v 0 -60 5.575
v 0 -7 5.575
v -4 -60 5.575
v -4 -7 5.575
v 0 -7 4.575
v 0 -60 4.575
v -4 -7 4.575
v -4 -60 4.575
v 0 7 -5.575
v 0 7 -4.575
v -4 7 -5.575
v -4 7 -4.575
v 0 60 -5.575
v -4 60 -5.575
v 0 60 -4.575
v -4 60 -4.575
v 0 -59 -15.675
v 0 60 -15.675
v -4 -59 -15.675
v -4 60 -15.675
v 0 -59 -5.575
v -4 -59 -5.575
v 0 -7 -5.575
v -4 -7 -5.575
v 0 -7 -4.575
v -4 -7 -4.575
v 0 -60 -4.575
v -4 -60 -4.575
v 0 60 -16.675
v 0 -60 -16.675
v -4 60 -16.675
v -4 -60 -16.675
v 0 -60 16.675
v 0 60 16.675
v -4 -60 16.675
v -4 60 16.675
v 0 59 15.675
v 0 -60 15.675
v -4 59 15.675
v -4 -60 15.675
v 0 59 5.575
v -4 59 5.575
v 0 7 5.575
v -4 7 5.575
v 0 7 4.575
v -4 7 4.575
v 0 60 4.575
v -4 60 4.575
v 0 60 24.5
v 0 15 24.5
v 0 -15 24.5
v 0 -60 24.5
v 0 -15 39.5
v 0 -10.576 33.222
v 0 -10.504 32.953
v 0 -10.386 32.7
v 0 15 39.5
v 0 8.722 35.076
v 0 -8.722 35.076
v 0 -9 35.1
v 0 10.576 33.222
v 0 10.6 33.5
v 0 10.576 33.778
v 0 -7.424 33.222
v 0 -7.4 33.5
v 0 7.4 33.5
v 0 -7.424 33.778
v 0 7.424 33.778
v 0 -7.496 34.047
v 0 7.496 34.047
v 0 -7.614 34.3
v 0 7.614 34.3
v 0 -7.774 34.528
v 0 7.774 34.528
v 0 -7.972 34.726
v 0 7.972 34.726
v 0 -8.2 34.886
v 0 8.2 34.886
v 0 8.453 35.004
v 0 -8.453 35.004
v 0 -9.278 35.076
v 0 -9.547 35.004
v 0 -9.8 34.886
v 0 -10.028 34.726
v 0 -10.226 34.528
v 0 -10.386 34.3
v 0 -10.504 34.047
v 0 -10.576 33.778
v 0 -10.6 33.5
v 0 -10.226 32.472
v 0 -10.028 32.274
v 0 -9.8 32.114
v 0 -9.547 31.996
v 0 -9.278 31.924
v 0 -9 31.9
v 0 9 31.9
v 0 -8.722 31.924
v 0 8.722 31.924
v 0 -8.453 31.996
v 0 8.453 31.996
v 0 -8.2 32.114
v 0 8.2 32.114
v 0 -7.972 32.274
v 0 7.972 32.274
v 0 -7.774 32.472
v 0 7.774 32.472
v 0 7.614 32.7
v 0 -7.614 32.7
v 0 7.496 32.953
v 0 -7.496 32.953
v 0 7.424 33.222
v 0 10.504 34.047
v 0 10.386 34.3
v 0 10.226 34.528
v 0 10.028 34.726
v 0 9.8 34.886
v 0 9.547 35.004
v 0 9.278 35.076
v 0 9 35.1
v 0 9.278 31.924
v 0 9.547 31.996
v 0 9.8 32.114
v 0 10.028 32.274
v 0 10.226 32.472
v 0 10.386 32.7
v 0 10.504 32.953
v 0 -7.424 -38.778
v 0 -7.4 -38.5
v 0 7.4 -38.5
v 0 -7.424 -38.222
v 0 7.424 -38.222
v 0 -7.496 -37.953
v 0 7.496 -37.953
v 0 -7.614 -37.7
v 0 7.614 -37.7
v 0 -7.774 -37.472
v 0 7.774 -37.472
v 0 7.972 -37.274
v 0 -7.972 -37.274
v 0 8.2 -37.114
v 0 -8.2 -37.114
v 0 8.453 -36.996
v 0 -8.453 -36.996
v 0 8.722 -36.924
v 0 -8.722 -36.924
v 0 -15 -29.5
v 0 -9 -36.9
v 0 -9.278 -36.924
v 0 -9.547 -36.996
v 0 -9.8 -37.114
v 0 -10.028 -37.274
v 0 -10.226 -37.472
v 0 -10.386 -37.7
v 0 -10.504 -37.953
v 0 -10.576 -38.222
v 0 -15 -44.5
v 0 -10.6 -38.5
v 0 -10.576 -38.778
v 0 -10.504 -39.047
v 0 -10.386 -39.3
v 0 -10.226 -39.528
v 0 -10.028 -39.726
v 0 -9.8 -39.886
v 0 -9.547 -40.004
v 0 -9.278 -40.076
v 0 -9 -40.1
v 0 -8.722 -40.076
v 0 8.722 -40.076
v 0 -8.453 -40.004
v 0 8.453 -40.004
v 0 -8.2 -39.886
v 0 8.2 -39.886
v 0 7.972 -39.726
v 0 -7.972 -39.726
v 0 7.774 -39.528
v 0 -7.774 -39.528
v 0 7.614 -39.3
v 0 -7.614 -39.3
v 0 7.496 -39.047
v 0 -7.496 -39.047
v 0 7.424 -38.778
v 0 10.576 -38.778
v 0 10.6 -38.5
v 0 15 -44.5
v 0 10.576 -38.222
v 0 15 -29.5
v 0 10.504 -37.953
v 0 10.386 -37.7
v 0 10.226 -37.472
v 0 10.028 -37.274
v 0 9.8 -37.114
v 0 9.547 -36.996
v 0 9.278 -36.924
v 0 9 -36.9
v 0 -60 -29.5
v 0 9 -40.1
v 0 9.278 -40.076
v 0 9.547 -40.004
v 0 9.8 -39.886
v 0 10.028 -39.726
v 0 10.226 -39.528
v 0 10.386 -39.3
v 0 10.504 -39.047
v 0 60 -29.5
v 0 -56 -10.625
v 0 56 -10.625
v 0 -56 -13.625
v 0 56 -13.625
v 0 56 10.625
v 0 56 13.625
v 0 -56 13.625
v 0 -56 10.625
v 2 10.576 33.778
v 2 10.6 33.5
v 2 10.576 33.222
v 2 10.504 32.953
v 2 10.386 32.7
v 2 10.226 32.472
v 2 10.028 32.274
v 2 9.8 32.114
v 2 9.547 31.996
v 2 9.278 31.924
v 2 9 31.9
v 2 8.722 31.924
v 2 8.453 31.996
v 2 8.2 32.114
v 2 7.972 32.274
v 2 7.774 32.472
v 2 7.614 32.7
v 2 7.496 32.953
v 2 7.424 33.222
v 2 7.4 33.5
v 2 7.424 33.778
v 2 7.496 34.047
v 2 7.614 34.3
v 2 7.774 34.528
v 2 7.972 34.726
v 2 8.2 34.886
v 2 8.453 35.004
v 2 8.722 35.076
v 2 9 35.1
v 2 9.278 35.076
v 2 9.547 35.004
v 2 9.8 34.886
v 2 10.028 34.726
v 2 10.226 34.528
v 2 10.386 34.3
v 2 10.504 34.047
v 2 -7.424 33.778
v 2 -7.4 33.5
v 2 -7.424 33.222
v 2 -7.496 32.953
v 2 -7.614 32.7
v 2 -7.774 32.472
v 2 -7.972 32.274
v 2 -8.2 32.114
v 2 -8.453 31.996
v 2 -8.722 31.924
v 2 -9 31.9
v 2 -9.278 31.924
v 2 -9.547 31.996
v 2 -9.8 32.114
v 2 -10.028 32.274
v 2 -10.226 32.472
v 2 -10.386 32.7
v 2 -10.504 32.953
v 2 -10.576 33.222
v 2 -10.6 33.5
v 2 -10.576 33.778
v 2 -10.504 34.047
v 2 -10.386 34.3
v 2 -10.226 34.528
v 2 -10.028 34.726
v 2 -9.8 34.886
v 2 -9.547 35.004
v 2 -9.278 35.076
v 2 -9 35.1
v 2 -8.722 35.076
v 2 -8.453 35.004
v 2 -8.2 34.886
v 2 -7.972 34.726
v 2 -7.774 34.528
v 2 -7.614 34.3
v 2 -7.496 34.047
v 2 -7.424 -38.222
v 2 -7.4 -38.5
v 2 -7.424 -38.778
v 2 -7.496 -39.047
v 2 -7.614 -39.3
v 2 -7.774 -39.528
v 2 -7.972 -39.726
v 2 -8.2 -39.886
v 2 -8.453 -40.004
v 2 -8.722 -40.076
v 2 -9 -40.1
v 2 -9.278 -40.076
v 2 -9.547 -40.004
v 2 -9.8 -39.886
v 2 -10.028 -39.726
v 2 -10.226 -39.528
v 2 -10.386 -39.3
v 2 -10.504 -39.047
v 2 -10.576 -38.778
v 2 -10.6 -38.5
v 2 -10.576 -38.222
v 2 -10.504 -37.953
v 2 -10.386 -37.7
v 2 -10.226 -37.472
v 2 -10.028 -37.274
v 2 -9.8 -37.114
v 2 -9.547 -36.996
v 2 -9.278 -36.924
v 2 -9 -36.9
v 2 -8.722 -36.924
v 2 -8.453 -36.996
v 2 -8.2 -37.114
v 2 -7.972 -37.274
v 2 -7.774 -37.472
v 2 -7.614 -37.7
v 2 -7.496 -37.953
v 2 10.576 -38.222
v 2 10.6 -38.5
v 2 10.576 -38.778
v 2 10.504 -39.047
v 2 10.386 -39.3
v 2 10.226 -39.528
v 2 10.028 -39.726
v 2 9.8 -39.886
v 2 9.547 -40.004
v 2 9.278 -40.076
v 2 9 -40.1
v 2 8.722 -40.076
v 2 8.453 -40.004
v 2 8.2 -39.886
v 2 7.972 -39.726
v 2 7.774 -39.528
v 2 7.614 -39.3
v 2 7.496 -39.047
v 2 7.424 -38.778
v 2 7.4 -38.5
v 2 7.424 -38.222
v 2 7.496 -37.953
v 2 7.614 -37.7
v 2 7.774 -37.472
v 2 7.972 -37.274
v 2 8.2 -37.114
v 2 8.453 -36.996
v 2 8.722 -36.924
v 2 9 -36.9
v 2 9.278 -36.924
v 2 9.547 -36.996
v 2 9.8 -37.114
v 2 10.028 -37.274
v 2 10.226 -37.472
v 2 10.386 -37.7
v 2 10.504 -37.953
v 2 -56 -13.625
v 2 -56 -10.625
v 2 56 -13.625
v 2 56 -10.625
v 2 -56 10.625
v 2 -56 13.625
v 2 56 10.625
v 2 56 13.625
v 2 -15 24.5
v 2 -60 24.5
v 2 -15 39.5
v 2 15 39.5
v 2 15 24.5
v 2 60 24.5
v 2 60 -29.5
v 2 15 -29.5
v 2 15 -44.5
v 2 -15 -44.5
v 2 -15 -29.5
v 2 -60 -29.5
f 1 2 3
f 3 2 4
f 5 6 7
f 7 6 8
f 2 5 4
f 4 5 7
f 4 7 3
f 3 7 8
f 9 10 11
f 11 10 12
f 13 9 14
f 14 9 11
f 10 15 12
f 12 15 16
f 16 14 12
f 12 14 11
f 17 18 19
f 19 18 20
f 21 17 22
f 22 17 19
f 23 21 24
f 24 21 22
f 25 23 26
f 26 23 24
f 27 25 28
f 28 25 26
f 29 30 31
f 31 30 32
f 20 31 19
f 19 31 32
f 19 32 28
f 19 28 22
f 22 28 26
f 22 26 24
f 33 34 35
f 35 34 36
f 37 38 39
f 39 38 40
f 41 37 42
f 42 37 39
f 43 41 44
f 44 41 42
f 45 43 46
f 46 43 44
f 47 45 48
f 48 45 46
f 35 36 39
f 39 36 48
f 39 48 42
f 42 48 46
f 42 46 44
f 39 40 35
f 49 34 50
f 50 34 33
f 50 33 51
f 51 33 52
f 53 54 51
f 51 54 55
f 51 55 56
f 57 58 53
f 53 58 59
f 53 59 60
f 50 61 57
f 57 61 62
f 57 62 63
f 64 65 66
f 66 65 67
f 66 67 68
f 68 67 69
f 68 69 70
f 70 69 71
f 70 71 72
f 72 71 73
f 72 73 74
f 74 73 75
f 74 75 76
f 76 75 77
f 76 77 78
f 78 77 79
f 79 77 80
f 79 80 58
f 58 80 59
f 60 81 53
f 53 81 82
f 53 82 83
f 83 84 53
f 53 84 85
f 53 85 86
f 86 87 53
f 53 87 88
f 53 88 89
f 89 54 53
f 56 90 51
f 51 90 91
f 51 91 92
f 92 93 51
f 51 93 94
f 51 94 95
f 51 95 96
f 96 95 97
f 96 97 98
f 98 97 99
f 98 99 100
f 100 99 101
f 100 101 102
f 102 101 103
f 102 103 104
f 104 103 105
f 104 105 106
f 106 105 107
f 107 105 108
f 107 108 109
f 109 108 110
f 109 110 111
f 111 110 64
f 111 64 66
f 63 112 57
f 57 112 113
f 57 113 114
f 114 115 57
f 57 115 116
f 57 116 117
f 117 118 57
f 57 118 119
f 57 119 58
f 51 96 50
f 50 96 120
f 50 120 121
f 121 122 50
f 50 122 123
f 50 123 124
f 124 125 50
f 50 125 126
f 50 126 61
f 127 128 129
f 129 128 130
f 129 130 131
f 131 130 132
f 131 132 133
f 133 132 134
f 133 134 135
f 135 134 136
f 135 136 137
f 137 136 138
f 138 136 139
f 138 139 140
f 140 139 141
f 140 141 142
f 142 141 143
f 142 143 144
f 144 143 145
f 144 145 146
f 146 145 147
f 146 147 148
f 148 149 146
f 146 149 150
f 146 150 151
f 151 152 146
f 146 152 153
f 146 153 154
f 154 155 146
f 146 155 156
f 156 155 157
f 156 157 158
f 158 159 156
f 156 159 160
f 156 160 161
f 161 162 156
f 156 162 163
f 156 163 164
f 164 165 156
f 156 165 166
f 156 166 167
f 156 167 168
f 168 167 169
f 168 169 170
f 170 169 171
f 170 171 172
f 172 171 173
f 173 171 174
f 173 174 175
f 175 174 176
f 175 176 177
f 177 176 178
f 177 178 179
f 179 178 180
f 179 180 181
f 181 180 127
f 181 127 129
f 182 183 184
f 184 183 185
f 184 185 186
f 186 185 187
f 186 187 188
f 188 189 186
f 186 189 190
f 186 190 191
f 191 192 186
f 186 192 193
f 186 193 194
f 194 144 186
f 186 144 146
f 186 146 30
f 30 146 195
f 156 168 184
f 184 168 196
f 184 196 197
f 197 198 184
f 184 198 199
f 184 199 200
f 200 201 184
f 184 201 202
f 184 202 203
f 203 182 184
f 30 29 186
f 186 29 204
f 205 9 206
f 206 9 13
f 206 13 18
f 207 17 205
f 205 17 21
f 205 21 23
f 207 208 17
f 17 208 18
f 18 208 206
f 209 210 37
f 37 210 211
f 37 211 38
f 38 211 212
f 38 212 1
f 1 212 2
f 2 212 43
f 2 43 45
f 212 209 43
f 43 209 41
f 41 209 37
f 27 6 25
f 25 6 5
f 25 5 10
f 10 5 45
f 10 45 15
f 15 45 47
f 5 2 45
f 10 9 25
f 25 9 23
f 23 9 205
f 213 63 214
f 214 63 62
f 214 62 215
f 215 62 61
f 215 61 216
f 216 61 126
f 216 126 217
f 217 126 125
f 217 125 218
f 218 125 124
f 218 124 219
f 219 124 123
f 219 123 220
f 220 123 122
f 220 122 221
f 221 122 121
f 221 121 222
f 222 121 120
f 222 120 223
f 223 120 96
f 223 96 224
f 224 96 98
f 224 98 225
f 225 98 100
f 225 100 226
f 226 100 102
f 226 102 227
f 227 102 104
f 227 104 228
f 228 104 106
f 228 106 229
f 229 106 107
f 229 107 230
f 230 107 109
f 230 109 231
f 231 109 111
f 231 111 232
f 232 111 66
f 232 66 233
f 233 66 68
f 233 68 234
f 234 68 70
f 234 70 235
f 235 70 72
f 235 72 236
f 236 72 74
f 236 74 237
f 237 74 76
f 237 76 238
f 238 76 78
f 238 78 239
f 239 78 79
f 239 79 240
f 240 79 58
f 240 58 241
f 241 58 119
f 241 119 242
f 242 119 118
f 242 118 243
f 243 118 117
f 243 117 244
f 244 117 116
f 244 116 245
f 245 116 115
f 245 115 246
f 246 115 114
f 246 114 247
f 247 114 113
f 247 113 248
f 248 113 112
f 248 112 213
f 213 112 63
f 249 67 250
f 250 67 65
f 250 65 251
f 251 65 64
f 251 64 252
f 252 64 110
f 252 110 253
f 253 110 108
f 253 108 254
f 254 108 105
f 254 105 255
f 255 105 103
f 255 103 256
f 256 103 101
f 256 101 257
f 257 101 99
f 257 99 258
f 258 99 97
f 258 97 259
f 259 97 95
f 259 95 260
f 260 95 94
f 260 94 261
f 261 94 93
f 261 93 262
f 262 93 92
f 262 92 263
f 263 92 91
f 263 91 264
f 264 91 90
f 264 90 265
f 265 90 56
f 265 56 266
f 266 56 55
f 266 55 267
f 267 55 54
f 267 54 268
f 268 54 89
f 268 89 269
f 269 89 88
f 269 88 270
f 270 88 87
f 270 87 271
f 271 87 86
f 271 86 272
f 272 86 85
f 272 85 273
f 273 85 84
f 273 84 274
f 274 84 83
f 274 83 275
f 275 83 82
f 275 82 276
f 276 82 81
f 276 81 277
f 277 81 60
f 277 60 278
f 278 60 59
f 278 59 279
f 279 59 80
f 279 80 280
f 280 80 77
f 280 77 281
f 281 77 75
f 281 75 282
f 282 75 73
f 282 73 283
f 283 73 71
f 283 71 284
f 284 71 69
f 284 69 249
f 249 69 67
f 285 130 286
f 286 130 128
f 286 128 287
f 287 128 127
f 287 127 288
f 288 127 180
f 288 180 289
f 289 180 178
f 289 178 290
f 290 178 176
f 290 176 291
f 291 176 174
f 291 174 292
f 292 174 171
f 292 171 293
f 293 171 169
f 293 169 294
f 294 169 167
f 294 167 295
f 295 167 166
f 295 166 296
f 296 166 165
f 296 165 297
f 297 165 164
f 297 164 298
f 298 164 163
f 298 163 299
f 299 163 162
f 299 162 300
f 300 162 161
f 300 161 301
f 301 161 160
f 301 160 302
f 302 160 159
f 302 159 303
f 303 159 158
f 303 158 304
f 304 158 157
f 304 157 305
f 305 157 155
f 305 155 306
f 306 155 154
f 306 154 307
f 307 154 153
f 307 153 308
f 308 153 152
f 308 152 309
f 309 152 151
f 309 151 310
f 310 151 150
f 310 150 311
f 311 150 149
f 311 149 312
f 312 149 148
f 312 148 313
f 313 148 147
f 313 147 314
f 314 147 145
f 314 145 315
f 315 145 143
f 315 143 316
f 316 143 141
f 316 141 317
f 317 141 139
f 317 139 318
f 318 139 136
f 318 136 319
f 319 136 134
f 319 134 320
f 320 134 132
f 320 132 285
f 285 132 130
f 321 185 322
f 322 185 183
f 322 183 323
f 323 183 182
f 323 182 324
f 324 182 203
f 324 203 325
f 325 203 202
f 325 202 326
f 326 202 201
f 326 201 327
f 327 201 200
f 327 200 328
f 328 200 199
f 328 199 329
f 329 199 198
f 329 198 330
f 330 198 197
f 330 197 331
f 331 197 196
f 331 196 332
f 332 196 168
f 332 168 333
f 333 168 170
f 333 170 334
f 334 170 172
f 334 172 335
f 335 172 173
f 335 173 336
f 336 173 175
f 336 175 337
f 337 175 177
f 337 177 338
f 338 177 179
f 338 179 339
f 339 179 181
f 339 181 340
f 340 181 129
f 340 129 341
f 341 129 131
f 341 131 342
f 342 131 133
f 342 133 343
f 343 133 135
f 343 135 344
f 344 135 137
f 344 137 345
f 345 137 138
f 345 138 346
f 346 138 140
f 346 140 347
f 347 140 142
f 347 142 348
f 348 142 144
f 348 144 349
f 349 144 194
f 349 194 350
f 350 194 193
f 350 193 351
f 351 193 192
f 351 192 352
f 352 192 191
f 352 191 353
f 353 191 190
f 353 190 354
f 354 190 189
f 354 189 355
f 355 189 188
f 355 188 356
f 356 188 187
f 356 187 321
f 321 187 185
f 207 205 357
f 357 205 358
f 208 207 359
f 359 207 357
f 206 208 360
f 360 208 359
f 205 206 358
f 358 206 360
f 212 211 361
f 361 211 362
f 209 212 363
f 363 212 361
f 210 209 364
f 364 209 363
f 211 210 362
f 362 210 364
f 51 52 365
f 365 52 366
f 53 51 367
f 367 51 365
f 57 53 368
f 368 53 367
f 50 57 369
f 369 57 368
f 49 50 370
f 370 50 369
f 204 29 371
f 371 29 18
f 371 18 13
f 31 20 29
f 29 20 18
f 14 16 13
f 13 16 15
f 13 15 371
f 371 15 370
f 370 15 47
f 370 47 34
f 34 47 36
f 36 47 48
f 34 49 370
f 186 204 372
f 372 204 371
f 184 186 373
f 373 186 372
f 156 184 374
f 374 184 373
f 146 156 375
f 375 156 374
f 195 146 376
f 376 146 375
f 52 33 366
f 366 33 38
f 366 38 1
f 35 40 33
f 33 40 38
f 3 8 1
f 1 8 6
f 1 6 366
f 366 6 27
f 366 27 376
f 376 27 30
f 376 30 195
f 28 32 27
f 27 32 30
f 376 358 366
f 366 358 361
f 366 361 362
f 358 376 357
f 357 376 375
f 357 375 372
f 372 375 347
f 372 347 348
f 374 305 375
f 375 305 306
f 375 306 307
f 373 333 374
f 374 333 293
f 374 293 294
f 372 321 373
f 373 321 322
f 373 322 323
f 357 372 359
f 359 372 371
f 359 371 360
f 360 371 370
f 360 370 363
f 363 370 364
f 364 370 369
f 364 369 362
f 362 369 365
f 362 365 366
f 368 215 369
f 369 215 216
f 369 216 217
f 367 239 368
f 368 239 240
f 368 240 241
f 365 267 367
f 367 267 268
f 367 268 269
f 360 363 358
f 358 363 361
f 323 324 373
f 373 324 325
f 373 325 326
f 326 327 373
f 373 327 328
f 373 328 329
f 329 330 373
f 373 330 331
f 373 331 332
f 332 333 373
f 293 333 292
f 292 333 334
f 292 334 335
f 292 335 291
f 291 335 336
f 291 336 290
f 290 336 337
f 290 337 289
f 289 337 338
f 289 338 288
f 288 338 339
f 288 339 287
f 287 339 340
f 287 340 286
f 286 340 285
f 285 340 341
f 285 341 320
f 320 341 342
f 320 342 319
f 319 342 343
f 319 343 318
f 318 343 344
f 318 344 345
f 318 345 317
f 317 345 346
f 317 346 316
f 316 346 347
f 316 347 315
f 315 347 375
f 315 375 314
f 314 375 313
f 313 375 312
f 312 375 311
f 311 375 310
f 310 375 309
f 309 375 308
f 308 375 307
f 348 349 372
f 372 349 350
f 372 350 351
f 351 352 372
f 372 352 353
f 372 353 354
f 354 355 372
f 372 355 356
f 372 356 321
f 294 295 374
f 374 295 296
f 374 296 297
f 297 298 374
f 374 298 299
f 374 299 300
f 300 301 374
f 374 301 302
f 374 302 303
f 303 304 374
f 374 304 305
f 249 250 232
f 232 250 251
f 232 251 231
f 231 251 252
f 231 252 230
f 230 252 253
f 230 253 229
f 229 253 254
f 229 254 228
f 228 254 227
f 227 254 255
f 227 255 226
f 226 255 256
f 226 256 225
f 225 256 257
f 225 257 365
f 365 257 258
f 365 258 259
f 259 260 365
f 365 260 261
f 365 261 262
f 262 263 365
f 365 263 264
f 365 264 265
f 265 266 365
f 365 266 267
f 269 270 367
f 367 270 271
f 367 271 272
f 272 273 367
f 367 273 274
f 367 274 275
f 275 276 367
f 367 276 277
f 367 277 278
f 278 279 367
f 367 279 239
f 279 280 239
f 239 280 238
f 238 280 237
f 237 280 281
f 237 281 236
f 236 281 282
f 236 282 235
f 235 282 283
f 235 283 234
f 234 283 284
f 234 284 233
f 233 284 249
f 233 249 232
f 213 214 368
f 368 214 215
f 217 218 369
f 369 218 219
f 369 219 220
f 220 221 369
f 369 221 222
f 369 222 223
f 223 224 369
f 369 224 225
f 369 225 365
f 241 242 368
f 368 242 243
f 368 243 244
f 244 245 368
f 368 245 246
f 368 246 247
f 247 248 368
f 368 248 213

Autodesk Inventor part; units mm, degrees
ref_plane "YZ Plane" through (0, 0, 0) normal (1, 0, 0) x (0, 1, 0)
ref_plane "XZ Plane" through (0, 0, 0) normal (0, 1, 0) x (-1, 0, 0)
ref_plane "XY Plane" through (0, 0, 0) normal (0, 0, 1) x (1, 0, 0)
sketch "スケッチ1" plane through (0, 0, 0) normal (1, 0, 0) x (0, 1, 0)
  line L0 (60, -16.042) -> (-60, -16.042)
  line L1 (-60, -16.042) -> (-60, 16.042)
  line L2 (-60, 16.042) -> (60, 16.042)
  line L3 (60, 16.042) -> (60, -16.042)
  line L4 (60, -16.042) -> (-60, 16.042) construction
  line L5 (-60, -16.042) -> (60, 16.042) construction
  line L6 (-56, 13.625) -> (56, 13.625)
  line L7 (56, 13.625) -> (56, 10.625)
  line L8 (56, 10.625) -> (-56, 10.625)
  line L9 (-56, 10.625) -> (-56, 13.625)
  line L10 (-56, -10.625) -> (56, -10.625)
  line L11 (56, -10.625) -> (56, -13.625)
  line L12 (56, -13.625) -> (-56, -13.625)
  line L13 (-56, -13.625) -> (-56, -10.625)
  line L14 (60, -16.042) -> (-60, -16.042)
  line L15 (-60, -16.042) -> (-60, -29.5)
  line L16 (-60, -29.5) -> (60, -29.5)
  line L17 (60, -29.5) -> (60, -16.042)
  line L18 (-60, 16.042) -> (60, 16.042)
  line L19 (60, 16.042) -> (60, 24.5)
  line L20 (60, 24.5) -> (-60, 24.5)
  line L21 (-60, 24.5) -> (-60, 16.042)
  line L22 (15, 24.5) -> (-15, 24.5)
  line L23 (-15, 24.5) -> (-15, 39.5)
  line L24 (-15, 39.5) -> (15, 39.5)
  line L25 (15, 39.5) -> (15, 24.5)
  line L26 (20, -29.5) -> (10, -29.5)
  line L27 (-10, -29.5) -> (-20, -29.5)
  circle A0 centre (9, 33.5) radius 1.6
  circle A1 centre (-9, 33.5) radius 1.6
  line L28 (60, 0) -> (-60, 0)
  line L29 (15, -29.5) -> (-15, -29.5)
  line L30 (-15, -29.5) -> (-15, -44.5)
  line L31 (-15, -44.5) -> (15, -44.5)
  line L32 (15, -44.5) -> (15, -29.5)
  circle A2 centre (-9, -38.5) radius 1.6
  circle A3 centre (9, -38.5) radius 1.6
  point P0 (0, 0)
  point P1 (0, 0)
  point P2 (56, 12.125)
  point P3 (56, -12.125)
  point P4 (0, 0)
  point P5 (-15, 24.5)
  point P6 (-15, -29.5)
  dimension "d1" = 120
  dimension "d3" = 12.125
  dimension "d6" = 3
  dimension "d11" = 12.125
  dimension "d15" = 2.417
  dimension "d26" = 4
  dimension "d27" = 4
  dimension "d41" = 29.5
  dimension "d53" = 54
  dimension "d72" = 15
  dimension "d74" = 15
  dimension "d75" = 30
  dimension "d79" = 6
  dimension "d80" = 3.2
  dimension "d92" = 18
  dimension "d97" = 15
  dimension "d101" = 72
  dimension "d106" = 9
extrude "押し出し1" add sketch "スケッチ1" along normal blind 2
sketch "スケッチ3" plane through (0, 0, 0) normal (-1, 0, 0) x (0, 0, 1)
  line L0 (-29.5, 60) -> (24.5, 60) projected
  line L1 (5.575, 60) -> (4.575, 60)
  line L2 (4.575, 60) -> (4.575, 7)
  line L3 (4.575, 7) -> (5.575, 7)
  line L4 (5.575, 7) -> (5.575, 60)
  line L5 (16.675, 60) -> (15.675, 60)
  line L6 (15.675, 60) -> (15.675, 0)
  line L7 (15.675, 0) -> (16.675, 0)
  line L8 (16.675, 0) -> (16.675, 60)
  line L9 (0, 0) -> (4.575, 0)
  line L10 (0, 0) -> (0, 19.0491)
  line L11 (5.575, -60) -> (4.575, -60)
  line L12 (4.575, -60) -> (4.575, -7)
  line L13 (4.575, -7) -> (5.575, -7)
  line L14 (5.575, -7) -> (5.575, -60)
  line L15 (16.675, -60) -> (15.675, -60)
  line L16 (15.675, -60) -> (15.675, 0)
  line L17 (16.675, 0) -> (16.675, -60)
  line L18 (-5.575, 60) -> (-4.575, 60)
  line L19 (-4.575, 60) -> (-4.575, 7)
  line L20 (-4.575, 7) -> (-5.575, 7)
  line L21 (-5.575, 7) -> (-5.575, 60)
  line L22 (-16.675, 60) -> (-15.675, 60)
  line L23 (-15.675, 60) -> (-15.675, 0)
  line L24 (-15.675, 0) -> (-16.675, 0)
  line L25 (-16.675, 0) -> (-16.675, 60)
  line L26 (-5.575, -60) -> (-4.575, -60)
  line L27 (-4.575, -60) -> (-4.575, -7)
  line L28 (-4.575, -7) -> (-5.575, -7)
  line L29 (-5.575, -7) -> (-5.575, -60)
  line L30 (-16.675, -60) -> (-15.675, -60)
  line L31 (-15.675, -60) -> (-15.675, 0)
  line L32 (-16.675, 0) -> (-16.675, -60)
  line L33 (5.575, 60) -> (15.675, 60)
  line L34 (15.675, 60) -> (15.675, 59)
  line L35 (15.675, 59) -> (5.575, 59)
  line L36 (5.575, 59) -> (5.575, 60)
  line L37 (-5.575, -60) -> (-15.675, -60)
  line L38 (-15.675, -60) -> (-15.675, -59)
  line L39 (-15.675, -59) -> (-5.575, -59)
  line L40 (-5.575, -59) -> (-5.575, -60)
  point P0 (-15.675, 60)
  point P1 (-16.675, 60)
  point P2 (15.675, 60)
  point P3 (0, 9.5245)
  point P4 (-5.575, -59)
  point P5 (5.575, 59)
  dimension "d31" = 1
  dimension "d33" = 1
  dimension "d34" = 60
  dimension "d35" = 10.1
  dimension "d36" = 7
  dimension "d61" = 5.575
  dimension "d62" = 1
  dimension "d63" = 1
extrude "押し出し4" add sketch "スケッチ3" along normal blind 4
equation "\"d74\" = 0.5 * d75"
equation "\"d2\" = 0.25 * d0"
equation "\"d73\" = d72"
equation "\"d78\" = 0.5 * d72"
equation "\"d0\" = 30"
properties part number "hand_box1"
